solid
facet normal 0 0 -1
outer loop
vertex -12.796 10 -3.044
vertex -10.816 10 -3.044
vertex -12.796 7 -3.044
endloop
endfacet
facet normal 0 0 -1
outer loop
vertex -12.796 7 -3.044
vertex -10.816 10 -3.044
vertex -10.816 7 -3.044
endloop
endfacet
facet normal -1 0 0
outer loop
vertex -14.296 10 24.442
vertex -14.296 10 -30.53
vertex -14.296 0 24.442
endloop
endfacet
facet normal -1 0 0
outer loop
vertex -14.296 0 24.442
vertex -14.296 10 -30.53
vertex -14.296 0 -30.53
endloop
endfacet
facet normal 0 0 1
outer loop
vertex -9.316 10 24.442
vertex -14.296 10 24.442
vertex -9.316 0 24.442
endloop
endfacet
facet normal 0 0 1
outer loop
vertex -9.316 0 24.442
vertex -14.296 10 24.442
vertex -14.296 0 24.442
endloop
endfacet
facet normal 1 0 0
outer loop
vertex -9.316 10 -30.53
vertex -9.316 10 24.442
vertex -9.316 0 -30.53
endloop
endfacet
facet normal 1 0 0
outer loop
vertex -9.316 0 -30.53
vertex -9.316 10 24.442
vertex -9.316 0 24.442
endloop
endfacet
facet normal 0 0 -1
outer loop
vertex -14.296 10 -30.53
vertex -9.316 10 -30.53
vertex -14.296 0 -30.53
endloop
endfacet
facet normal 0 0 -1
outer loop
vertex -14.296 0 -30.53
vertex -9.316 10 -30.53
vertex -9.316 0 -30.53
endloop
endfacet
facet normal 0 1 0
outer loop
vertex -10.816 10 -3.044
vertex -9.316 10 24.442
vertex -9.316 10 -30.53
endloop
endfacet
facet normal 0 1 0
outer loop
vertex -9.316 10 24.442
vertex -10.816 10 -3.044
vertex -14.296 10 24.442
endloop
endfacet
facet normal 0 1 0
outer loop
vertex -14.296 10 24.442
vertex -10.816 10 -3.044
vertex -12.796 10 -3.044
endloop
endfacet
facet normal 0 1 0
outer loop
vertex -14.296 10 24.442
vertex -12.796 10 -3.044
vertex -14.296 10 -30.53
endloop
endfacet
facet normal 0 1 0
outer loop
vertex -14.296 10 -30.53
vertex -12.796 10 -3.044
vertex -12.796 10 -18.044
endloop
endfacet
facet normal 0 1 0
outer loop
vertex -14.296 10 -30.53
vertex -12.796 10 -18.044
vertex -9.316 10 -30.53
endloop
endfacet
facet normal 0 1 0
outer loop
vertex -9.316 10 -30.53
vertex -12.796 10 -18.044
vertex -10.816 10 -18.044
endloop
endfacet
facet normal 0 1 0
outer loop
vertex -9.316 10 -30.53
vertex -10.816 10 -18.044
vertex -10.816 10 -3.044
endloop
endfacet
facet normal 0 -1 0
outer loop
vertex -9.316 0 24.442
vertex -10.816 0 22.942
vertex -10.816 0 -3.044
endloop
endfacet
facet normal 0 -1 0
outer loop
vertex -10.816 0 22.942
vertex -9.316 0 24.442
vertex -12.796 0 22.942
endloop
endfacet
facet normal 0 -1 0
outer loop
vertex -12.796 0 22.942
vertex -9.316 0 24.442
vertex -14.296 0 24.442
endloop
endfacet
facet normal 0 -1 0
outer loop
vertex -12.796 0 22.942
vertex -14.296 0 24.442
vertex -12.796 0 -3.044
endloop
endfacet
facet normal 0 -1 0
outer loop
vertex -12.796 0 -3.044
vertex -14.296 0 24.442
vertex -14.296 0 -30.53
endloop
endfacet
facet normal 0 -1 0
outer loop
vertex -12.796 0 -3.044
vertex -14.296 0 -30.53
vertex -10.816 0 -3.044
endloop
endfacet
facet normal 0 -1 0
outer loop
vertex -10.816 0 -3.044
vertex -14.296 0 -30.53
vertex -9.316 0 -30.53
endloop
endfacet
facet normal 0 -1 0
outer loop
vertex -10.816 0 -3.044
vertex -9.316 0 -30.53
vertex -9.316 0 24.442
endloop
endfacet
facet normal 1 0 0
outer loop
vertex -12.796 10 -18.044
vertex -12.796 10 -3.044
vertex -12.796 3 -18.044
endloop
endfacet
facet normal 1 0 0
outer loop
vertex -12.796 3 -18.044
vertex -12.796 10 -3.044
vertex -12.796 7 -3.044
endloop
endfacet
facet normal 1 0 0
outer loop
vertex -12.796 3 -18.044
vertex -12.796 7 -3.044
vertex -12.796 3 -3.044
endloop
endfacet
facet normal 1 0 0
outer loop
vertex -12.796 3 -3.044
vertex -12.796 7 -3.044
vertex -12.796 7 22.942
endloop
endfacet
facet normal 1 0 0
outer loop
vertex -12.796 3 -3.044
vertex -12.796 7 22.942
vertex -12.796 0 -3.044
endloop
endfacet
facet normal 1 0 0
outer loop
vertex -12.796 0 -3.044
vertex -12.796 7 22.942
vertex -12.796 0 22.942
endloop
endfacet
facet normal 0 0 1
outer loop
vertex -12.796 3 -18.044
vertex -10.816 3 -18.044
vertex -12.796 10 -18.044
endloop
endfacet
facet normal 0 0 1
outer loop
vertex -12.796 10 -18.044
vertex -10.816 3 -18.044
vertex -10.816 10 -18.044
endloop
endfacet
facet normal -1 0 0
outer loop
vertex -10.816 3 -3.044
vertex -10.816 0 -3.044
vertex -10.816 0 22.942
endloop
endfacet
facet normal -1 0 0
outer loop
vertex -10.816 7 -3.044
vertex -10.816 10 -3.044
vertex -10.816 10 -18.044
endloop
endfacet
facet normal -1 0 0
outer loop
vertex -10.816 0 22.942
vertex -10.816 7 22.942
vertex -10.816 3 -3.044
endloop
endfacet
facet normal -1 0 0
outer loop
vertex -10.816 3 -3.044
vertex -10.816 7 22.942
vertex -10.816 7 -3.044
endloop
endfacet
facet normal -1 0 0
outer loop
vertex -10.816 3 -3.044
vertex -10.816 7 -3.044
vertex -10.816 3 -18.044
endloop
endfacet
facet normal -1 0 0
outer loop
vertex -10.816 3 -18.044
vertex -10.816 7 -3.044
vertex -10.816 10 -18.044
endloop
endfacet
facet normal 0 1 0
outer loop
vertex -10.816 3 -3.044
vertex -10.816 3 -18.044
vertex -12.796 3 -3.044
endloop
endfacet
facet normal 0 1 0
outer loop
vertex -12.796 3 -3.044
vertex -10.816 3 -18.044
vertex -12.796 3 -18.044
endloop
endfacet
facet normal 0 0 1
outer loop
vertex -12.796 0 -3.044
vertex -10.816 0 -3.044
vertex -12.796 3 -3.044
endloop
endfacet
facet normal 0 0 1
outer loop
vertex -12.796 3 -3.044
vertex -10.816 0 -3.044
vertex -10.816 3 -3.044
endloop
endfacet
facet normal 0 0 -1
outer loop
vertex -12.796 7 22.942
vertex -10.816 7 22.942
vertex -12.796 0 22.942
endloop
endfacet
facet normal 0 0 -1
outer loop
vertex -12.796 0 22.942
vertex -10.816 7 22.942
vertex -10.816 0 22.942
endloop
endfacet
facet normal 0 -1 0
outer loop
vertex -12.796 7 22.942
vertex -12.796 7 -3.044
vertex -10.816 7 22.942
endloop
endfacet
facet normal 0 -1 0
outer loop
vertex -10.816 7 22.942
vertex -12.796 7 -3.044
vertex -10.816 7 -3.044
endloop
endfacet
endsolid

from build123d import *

# Parameters (mm, degrees)
SKETCH1_W           = 4.980670257
SKETCH1_H           = 54.9718421
BOSS_EXTRUDE1_DEPTH = 10
SKETCH2_W           = 1.980670257
SKETCH2_H           = 15
CUT_EXTRUDE2_DEPTH  = 7
SKETCH4_W           = 1.980670257
SKETCH4_H           = 25.98592105
CUT_EXTRUDE3_DEPTH  = 7


with BuildPart() as part:
    # Sketch1 → Boss-Extrude1 (new body)
    with BuildSketch(Plane(origin=(0, 0, 0), x_dir=(1, 0, 0), z_dir=(0, 1, 0))):
        with Locations((-11.806033203, 3.043742935)):
            Rectangle(SKETCH1_W, SKETCH1_H)
    extrude(amount=BOSS_EXTRUDE1_DEPTH)

    # Sketch2 → Cut-Extrude2 (cut)
    with BuildSketch(Plane(origin=(0, 10, 0), x_dir=(1, 0, 0), z_dir=(0, 1, 0))):
        with Locations((-11.806033203, 10.543742935)):
            Rectangle(SKETCH2_W, SKETCH2_H)
    extrude(amount=-CUT_EXTRUDE2_DEPTH, mode=Mode.SUBTRACT)

    # Sketch4 → Cut-Extrude3 (cut)
    with BuildSketch(Plane.XZ):
        with Locations((-11.806033203, 9.94921759)):
            Rectangle(SKETCH4_W, SKETCH4_H)
    extrude(amount=-CUT_EXTRUDE3_DEPTH, mode=Mode.SUBTRACT)


solid = part.part
